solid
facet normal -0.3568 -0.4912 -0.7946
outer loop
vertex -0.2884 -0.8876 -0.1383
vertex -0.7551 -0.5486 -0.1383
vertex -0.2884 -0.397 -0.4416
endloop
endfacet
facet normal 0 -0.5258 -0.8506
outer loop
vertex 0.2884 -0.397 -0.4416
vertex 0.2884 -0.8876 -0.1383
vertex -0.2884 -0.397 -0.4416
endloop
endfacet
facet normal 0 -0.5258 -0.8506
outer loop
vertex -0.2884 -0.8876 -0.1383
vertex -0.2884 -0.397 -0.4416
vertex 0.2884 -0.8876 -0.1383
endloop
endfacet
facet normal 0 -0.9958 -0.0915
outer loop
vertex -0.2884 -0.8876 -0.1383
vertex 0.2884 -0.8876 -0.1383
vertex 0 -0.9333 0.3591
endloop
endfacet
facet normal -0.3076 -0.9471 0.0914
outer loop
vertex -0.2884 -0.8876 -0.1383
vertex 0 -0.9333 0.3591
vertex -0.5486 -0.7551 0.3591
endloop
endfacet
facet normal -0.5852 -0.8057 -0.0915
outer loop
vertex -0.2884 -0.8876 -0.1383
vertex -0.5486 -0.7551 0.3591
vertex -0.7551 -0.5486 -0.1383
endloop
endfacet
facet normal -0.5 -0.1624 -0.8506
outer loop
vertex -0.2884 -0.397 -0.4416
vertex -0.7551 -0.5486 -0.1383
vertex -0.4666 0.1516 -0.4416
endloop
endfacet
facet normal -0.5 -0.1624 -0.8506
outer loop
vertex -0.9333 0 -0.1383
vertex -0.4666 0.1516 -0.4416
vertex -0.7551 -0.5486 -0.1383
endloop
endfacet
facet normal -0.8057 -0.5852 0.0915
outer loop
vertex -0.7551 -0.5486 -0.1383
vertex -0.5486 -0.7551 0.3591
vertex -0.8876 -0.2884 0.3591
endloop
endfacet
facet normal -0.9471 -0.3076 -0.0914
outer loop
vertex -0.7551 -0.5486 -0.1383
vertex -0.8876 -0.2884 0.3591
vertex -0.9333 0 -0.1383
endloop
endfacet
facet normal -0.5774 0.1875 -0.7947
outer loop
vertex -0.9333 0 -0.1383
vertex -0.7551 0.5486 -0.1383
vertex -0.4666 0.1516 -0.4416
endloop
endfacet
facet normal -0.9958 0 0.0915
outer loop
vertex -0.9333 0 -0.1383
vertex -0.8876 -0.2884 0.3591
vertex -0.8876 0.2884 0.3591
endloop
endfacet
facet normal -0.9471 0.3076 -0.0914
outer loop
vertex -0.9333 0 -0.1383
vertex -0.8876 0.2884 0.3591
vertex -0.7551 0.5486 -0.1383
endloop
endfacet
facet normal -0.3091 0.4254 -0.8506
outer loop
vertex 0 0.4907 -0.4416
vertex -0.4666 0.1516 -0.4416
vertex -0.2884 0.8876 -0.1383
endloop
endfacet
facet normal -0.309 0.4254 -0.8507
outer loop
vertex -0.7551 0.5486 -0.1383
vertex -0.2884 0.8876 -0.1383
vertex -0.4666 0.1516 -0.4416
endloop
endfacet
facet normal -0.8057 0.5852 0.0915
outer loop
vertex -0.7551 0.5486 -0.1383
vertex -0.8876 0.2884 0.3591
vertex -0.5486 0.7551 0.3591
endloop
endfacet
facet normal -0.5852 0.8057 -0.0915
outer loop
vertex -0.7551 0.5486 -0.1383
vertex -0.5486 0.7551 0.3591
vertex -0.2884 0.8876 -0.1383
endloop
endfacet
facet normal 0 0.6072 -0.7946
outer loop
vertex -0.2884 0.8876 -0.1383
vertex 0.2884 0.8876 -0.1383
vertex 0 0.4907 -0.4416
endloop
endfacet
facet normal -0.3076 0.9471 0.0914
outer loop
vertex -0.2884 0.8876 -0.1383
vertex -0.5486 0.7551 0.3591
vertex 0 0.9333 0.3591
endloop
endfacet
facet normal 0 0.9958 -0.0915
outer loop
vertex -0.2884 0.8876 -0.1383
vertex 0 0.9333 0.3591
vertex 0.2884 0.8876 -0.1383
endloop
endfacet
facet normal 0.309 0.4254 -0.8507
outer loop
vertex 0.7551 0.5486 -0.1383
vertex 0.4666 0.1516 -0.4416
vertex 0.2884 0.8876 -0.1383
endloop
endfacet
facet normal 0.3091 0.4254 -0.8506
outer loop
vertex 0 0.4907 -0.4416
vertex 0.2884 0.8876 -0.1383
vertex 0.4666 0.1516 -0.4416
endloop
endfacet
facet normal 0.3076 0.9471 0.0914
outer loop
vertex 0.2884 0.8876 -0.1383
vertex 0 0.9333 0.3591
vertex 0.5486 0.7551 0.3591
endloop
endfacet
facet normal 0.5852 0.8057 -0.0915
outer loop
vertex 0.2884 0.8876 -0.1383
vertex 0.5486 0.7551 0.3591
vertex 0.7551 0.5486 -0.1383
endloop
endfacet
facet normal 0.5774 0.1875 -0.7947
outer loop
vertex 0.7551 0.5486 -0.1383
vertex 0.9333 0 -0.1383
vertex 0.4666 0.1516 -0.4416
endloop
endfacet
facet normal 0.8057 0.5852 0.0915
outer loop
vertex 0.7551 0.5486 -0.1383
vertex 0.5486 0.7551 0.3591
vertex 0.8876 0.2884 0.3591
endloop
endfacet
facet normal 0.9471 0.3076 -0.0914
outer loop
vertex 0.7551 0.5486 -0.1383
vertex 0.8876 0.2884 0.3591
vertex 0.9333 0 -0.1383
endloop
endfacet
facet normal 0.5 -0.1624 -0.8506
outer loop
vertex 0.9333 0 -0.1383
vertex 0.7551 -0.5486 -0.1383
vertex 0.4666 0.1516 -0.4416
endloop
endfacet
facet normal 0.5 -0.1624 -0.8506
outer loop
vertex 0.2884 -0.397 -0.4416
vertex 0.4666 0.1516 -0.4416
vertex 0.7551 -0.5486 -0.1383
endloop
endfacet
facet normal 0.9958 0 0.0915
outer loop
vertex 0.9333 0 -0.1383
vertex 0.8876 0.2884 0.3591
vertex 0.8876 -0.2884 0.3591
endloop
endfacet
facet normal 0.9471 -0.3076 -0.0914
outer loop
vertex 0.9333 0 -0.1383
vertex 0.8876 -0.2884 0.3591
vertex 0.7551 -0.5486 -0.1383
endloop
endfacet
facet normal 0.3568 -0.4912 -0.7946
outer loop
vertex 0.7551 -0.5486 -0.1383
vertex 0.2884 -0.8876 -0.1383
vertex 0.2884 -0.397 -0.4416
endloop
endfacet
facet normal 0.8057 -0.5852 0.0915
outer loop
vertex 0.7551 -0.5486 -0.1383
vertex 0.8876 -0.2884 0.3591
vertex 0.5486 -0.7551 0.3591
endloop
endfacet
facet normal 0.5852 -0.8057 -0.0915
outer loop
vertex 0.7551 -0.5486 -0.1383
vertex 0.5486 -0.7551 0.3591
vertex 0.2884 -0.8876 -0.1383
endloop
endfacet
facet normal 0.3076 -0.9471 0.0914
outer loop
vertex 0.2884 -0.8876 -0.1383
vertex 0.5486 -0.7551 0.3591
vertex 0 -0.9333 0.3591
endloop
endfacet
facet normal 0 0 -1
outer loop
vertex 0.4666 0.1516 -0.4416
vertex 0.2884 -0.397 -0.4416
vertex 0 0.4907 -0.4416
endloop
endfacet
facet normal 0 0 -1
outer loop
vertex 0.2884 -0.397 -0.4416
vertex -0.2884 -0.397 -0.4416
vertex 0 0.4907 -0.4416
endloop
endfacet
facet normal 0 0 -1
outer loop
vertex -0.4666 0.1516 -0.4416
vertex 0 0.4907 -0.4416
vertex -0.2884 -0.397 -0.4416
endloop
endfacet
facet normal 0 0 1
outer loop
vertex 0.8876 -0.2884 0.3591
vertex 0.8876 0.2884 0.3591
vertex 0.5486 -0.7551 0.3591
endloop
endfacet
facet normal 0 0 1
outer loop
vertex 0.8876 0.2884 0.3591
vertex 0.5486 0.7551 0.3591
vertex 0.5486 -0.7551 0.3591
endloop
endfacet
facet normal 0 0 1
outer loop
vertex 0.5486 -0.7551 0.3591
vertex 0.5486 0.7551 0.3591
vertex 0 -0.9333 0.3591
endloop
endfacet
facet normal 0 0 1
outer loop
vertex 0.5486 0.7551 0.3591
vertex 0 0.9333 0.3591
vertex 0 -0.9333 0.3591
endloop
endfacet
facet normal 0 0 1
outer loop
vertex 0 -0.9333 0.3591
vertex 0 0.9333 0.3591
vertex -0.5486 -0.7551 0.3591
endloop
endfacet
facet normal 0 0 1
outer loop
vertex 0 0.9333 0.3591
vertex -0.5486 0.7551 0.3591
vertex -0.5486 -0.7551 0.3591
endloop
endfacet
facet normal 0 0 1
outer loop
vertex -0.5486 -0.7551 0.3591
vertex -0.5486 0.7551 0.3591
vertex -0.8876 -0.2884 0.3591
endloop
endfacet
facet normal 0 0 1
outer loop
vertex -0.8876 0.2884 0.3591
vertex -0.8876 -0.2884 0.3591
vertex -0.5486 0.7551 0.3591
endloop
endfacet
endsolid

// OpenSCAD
polyhedron( points = [[-0.288403904333659, -0.887615950393473, -0.138325768563204], [-0.755051225029041, -0.548576826277306, -0.138325768563204], [-0.933294641074161, 1.40116306088025e-11, -0.138325768563204], [-0.755051225814434, 0.548576826289321, -0.138325768563204], [-0.288403905604452, 0.887615950363585, -0.138325768563204], [0.288403904004478, 0.88761595036359, -0.138325768563204], [0.755051224730301, 0.548576826289321, -0.138325768563204], [0.933294640824681, 1.40116306088025e-11, -0.138325768563204], [0.755051225614219, -0.548576826277303, -0.138325768563204], [0.288403905434677, -0.887615950393473, -0.138325768563204], [-0.288403904307762, -0.396953920088345, -0.441571579435738], [-0.466647319966647, 0.151622905463617, -0.441571579753258], [6.09518002746024e-10, 0.490662029343404, -0.441571579753258], [0.466647321104134, 0.151622905351376, -0.44157157975326], [0.288403905267747, -0.396953920208315, -0.441571579361593], [-0.548576825577929, -0.755051225639555, 0.359111558383618], [5.65460261798635e-10, -0.933294641399489, 0.359111558383618], [0.548576826322484, -0.755051225426535, 0.359111558446932], [0.88761595027049, -0.28840390502132, 0.359111558371216], [0.887615949235853, 0.288403904891494, 0.359111558407415], [0.548576825427711, 0.755051225913839, 0.359111558338431], [-8.49687533507347e-10, 0.933294641118112, 0.359111558380216], [-0.548576826850022, 0.755051225896039, 0.359111558315867], [-0.887615949932849, 0.288403904862885, 0.359111558361495], [-0.88761595007111, -0.288403905049492, 0.359111558300335]], faces = [[0, 1, 10], [0, 10, 14, 9], [0, 9, 16], [0, 16, 15], [0, 15, 1], [1, 2, 11, 10], [1, 15, 24], [1, 24, 2], [2, 3, 11], [2, 24, 23], [2, 23, 3], [3, 4, 12, 11], [3, 23, 22], [3, 22, 4], [4, 5, 12], [4, 22, 21], [4, 21, 5], [5, 6, 13, 12], [5, 21, 20], [5, 20, 6], [6, 7, 13], [6, 20, 19], [6, 19, 7], [7, 8, 14, 13], [7, 19, 18], [7, 18, 8], [8, 9, 14], [8, 18, 17], [8, 17, 9], [9, 17, 16], [10, 11, 12, 13, 14], [15, 16, 17, 18, 19, 20, 21, 22, 23, 24]]);
